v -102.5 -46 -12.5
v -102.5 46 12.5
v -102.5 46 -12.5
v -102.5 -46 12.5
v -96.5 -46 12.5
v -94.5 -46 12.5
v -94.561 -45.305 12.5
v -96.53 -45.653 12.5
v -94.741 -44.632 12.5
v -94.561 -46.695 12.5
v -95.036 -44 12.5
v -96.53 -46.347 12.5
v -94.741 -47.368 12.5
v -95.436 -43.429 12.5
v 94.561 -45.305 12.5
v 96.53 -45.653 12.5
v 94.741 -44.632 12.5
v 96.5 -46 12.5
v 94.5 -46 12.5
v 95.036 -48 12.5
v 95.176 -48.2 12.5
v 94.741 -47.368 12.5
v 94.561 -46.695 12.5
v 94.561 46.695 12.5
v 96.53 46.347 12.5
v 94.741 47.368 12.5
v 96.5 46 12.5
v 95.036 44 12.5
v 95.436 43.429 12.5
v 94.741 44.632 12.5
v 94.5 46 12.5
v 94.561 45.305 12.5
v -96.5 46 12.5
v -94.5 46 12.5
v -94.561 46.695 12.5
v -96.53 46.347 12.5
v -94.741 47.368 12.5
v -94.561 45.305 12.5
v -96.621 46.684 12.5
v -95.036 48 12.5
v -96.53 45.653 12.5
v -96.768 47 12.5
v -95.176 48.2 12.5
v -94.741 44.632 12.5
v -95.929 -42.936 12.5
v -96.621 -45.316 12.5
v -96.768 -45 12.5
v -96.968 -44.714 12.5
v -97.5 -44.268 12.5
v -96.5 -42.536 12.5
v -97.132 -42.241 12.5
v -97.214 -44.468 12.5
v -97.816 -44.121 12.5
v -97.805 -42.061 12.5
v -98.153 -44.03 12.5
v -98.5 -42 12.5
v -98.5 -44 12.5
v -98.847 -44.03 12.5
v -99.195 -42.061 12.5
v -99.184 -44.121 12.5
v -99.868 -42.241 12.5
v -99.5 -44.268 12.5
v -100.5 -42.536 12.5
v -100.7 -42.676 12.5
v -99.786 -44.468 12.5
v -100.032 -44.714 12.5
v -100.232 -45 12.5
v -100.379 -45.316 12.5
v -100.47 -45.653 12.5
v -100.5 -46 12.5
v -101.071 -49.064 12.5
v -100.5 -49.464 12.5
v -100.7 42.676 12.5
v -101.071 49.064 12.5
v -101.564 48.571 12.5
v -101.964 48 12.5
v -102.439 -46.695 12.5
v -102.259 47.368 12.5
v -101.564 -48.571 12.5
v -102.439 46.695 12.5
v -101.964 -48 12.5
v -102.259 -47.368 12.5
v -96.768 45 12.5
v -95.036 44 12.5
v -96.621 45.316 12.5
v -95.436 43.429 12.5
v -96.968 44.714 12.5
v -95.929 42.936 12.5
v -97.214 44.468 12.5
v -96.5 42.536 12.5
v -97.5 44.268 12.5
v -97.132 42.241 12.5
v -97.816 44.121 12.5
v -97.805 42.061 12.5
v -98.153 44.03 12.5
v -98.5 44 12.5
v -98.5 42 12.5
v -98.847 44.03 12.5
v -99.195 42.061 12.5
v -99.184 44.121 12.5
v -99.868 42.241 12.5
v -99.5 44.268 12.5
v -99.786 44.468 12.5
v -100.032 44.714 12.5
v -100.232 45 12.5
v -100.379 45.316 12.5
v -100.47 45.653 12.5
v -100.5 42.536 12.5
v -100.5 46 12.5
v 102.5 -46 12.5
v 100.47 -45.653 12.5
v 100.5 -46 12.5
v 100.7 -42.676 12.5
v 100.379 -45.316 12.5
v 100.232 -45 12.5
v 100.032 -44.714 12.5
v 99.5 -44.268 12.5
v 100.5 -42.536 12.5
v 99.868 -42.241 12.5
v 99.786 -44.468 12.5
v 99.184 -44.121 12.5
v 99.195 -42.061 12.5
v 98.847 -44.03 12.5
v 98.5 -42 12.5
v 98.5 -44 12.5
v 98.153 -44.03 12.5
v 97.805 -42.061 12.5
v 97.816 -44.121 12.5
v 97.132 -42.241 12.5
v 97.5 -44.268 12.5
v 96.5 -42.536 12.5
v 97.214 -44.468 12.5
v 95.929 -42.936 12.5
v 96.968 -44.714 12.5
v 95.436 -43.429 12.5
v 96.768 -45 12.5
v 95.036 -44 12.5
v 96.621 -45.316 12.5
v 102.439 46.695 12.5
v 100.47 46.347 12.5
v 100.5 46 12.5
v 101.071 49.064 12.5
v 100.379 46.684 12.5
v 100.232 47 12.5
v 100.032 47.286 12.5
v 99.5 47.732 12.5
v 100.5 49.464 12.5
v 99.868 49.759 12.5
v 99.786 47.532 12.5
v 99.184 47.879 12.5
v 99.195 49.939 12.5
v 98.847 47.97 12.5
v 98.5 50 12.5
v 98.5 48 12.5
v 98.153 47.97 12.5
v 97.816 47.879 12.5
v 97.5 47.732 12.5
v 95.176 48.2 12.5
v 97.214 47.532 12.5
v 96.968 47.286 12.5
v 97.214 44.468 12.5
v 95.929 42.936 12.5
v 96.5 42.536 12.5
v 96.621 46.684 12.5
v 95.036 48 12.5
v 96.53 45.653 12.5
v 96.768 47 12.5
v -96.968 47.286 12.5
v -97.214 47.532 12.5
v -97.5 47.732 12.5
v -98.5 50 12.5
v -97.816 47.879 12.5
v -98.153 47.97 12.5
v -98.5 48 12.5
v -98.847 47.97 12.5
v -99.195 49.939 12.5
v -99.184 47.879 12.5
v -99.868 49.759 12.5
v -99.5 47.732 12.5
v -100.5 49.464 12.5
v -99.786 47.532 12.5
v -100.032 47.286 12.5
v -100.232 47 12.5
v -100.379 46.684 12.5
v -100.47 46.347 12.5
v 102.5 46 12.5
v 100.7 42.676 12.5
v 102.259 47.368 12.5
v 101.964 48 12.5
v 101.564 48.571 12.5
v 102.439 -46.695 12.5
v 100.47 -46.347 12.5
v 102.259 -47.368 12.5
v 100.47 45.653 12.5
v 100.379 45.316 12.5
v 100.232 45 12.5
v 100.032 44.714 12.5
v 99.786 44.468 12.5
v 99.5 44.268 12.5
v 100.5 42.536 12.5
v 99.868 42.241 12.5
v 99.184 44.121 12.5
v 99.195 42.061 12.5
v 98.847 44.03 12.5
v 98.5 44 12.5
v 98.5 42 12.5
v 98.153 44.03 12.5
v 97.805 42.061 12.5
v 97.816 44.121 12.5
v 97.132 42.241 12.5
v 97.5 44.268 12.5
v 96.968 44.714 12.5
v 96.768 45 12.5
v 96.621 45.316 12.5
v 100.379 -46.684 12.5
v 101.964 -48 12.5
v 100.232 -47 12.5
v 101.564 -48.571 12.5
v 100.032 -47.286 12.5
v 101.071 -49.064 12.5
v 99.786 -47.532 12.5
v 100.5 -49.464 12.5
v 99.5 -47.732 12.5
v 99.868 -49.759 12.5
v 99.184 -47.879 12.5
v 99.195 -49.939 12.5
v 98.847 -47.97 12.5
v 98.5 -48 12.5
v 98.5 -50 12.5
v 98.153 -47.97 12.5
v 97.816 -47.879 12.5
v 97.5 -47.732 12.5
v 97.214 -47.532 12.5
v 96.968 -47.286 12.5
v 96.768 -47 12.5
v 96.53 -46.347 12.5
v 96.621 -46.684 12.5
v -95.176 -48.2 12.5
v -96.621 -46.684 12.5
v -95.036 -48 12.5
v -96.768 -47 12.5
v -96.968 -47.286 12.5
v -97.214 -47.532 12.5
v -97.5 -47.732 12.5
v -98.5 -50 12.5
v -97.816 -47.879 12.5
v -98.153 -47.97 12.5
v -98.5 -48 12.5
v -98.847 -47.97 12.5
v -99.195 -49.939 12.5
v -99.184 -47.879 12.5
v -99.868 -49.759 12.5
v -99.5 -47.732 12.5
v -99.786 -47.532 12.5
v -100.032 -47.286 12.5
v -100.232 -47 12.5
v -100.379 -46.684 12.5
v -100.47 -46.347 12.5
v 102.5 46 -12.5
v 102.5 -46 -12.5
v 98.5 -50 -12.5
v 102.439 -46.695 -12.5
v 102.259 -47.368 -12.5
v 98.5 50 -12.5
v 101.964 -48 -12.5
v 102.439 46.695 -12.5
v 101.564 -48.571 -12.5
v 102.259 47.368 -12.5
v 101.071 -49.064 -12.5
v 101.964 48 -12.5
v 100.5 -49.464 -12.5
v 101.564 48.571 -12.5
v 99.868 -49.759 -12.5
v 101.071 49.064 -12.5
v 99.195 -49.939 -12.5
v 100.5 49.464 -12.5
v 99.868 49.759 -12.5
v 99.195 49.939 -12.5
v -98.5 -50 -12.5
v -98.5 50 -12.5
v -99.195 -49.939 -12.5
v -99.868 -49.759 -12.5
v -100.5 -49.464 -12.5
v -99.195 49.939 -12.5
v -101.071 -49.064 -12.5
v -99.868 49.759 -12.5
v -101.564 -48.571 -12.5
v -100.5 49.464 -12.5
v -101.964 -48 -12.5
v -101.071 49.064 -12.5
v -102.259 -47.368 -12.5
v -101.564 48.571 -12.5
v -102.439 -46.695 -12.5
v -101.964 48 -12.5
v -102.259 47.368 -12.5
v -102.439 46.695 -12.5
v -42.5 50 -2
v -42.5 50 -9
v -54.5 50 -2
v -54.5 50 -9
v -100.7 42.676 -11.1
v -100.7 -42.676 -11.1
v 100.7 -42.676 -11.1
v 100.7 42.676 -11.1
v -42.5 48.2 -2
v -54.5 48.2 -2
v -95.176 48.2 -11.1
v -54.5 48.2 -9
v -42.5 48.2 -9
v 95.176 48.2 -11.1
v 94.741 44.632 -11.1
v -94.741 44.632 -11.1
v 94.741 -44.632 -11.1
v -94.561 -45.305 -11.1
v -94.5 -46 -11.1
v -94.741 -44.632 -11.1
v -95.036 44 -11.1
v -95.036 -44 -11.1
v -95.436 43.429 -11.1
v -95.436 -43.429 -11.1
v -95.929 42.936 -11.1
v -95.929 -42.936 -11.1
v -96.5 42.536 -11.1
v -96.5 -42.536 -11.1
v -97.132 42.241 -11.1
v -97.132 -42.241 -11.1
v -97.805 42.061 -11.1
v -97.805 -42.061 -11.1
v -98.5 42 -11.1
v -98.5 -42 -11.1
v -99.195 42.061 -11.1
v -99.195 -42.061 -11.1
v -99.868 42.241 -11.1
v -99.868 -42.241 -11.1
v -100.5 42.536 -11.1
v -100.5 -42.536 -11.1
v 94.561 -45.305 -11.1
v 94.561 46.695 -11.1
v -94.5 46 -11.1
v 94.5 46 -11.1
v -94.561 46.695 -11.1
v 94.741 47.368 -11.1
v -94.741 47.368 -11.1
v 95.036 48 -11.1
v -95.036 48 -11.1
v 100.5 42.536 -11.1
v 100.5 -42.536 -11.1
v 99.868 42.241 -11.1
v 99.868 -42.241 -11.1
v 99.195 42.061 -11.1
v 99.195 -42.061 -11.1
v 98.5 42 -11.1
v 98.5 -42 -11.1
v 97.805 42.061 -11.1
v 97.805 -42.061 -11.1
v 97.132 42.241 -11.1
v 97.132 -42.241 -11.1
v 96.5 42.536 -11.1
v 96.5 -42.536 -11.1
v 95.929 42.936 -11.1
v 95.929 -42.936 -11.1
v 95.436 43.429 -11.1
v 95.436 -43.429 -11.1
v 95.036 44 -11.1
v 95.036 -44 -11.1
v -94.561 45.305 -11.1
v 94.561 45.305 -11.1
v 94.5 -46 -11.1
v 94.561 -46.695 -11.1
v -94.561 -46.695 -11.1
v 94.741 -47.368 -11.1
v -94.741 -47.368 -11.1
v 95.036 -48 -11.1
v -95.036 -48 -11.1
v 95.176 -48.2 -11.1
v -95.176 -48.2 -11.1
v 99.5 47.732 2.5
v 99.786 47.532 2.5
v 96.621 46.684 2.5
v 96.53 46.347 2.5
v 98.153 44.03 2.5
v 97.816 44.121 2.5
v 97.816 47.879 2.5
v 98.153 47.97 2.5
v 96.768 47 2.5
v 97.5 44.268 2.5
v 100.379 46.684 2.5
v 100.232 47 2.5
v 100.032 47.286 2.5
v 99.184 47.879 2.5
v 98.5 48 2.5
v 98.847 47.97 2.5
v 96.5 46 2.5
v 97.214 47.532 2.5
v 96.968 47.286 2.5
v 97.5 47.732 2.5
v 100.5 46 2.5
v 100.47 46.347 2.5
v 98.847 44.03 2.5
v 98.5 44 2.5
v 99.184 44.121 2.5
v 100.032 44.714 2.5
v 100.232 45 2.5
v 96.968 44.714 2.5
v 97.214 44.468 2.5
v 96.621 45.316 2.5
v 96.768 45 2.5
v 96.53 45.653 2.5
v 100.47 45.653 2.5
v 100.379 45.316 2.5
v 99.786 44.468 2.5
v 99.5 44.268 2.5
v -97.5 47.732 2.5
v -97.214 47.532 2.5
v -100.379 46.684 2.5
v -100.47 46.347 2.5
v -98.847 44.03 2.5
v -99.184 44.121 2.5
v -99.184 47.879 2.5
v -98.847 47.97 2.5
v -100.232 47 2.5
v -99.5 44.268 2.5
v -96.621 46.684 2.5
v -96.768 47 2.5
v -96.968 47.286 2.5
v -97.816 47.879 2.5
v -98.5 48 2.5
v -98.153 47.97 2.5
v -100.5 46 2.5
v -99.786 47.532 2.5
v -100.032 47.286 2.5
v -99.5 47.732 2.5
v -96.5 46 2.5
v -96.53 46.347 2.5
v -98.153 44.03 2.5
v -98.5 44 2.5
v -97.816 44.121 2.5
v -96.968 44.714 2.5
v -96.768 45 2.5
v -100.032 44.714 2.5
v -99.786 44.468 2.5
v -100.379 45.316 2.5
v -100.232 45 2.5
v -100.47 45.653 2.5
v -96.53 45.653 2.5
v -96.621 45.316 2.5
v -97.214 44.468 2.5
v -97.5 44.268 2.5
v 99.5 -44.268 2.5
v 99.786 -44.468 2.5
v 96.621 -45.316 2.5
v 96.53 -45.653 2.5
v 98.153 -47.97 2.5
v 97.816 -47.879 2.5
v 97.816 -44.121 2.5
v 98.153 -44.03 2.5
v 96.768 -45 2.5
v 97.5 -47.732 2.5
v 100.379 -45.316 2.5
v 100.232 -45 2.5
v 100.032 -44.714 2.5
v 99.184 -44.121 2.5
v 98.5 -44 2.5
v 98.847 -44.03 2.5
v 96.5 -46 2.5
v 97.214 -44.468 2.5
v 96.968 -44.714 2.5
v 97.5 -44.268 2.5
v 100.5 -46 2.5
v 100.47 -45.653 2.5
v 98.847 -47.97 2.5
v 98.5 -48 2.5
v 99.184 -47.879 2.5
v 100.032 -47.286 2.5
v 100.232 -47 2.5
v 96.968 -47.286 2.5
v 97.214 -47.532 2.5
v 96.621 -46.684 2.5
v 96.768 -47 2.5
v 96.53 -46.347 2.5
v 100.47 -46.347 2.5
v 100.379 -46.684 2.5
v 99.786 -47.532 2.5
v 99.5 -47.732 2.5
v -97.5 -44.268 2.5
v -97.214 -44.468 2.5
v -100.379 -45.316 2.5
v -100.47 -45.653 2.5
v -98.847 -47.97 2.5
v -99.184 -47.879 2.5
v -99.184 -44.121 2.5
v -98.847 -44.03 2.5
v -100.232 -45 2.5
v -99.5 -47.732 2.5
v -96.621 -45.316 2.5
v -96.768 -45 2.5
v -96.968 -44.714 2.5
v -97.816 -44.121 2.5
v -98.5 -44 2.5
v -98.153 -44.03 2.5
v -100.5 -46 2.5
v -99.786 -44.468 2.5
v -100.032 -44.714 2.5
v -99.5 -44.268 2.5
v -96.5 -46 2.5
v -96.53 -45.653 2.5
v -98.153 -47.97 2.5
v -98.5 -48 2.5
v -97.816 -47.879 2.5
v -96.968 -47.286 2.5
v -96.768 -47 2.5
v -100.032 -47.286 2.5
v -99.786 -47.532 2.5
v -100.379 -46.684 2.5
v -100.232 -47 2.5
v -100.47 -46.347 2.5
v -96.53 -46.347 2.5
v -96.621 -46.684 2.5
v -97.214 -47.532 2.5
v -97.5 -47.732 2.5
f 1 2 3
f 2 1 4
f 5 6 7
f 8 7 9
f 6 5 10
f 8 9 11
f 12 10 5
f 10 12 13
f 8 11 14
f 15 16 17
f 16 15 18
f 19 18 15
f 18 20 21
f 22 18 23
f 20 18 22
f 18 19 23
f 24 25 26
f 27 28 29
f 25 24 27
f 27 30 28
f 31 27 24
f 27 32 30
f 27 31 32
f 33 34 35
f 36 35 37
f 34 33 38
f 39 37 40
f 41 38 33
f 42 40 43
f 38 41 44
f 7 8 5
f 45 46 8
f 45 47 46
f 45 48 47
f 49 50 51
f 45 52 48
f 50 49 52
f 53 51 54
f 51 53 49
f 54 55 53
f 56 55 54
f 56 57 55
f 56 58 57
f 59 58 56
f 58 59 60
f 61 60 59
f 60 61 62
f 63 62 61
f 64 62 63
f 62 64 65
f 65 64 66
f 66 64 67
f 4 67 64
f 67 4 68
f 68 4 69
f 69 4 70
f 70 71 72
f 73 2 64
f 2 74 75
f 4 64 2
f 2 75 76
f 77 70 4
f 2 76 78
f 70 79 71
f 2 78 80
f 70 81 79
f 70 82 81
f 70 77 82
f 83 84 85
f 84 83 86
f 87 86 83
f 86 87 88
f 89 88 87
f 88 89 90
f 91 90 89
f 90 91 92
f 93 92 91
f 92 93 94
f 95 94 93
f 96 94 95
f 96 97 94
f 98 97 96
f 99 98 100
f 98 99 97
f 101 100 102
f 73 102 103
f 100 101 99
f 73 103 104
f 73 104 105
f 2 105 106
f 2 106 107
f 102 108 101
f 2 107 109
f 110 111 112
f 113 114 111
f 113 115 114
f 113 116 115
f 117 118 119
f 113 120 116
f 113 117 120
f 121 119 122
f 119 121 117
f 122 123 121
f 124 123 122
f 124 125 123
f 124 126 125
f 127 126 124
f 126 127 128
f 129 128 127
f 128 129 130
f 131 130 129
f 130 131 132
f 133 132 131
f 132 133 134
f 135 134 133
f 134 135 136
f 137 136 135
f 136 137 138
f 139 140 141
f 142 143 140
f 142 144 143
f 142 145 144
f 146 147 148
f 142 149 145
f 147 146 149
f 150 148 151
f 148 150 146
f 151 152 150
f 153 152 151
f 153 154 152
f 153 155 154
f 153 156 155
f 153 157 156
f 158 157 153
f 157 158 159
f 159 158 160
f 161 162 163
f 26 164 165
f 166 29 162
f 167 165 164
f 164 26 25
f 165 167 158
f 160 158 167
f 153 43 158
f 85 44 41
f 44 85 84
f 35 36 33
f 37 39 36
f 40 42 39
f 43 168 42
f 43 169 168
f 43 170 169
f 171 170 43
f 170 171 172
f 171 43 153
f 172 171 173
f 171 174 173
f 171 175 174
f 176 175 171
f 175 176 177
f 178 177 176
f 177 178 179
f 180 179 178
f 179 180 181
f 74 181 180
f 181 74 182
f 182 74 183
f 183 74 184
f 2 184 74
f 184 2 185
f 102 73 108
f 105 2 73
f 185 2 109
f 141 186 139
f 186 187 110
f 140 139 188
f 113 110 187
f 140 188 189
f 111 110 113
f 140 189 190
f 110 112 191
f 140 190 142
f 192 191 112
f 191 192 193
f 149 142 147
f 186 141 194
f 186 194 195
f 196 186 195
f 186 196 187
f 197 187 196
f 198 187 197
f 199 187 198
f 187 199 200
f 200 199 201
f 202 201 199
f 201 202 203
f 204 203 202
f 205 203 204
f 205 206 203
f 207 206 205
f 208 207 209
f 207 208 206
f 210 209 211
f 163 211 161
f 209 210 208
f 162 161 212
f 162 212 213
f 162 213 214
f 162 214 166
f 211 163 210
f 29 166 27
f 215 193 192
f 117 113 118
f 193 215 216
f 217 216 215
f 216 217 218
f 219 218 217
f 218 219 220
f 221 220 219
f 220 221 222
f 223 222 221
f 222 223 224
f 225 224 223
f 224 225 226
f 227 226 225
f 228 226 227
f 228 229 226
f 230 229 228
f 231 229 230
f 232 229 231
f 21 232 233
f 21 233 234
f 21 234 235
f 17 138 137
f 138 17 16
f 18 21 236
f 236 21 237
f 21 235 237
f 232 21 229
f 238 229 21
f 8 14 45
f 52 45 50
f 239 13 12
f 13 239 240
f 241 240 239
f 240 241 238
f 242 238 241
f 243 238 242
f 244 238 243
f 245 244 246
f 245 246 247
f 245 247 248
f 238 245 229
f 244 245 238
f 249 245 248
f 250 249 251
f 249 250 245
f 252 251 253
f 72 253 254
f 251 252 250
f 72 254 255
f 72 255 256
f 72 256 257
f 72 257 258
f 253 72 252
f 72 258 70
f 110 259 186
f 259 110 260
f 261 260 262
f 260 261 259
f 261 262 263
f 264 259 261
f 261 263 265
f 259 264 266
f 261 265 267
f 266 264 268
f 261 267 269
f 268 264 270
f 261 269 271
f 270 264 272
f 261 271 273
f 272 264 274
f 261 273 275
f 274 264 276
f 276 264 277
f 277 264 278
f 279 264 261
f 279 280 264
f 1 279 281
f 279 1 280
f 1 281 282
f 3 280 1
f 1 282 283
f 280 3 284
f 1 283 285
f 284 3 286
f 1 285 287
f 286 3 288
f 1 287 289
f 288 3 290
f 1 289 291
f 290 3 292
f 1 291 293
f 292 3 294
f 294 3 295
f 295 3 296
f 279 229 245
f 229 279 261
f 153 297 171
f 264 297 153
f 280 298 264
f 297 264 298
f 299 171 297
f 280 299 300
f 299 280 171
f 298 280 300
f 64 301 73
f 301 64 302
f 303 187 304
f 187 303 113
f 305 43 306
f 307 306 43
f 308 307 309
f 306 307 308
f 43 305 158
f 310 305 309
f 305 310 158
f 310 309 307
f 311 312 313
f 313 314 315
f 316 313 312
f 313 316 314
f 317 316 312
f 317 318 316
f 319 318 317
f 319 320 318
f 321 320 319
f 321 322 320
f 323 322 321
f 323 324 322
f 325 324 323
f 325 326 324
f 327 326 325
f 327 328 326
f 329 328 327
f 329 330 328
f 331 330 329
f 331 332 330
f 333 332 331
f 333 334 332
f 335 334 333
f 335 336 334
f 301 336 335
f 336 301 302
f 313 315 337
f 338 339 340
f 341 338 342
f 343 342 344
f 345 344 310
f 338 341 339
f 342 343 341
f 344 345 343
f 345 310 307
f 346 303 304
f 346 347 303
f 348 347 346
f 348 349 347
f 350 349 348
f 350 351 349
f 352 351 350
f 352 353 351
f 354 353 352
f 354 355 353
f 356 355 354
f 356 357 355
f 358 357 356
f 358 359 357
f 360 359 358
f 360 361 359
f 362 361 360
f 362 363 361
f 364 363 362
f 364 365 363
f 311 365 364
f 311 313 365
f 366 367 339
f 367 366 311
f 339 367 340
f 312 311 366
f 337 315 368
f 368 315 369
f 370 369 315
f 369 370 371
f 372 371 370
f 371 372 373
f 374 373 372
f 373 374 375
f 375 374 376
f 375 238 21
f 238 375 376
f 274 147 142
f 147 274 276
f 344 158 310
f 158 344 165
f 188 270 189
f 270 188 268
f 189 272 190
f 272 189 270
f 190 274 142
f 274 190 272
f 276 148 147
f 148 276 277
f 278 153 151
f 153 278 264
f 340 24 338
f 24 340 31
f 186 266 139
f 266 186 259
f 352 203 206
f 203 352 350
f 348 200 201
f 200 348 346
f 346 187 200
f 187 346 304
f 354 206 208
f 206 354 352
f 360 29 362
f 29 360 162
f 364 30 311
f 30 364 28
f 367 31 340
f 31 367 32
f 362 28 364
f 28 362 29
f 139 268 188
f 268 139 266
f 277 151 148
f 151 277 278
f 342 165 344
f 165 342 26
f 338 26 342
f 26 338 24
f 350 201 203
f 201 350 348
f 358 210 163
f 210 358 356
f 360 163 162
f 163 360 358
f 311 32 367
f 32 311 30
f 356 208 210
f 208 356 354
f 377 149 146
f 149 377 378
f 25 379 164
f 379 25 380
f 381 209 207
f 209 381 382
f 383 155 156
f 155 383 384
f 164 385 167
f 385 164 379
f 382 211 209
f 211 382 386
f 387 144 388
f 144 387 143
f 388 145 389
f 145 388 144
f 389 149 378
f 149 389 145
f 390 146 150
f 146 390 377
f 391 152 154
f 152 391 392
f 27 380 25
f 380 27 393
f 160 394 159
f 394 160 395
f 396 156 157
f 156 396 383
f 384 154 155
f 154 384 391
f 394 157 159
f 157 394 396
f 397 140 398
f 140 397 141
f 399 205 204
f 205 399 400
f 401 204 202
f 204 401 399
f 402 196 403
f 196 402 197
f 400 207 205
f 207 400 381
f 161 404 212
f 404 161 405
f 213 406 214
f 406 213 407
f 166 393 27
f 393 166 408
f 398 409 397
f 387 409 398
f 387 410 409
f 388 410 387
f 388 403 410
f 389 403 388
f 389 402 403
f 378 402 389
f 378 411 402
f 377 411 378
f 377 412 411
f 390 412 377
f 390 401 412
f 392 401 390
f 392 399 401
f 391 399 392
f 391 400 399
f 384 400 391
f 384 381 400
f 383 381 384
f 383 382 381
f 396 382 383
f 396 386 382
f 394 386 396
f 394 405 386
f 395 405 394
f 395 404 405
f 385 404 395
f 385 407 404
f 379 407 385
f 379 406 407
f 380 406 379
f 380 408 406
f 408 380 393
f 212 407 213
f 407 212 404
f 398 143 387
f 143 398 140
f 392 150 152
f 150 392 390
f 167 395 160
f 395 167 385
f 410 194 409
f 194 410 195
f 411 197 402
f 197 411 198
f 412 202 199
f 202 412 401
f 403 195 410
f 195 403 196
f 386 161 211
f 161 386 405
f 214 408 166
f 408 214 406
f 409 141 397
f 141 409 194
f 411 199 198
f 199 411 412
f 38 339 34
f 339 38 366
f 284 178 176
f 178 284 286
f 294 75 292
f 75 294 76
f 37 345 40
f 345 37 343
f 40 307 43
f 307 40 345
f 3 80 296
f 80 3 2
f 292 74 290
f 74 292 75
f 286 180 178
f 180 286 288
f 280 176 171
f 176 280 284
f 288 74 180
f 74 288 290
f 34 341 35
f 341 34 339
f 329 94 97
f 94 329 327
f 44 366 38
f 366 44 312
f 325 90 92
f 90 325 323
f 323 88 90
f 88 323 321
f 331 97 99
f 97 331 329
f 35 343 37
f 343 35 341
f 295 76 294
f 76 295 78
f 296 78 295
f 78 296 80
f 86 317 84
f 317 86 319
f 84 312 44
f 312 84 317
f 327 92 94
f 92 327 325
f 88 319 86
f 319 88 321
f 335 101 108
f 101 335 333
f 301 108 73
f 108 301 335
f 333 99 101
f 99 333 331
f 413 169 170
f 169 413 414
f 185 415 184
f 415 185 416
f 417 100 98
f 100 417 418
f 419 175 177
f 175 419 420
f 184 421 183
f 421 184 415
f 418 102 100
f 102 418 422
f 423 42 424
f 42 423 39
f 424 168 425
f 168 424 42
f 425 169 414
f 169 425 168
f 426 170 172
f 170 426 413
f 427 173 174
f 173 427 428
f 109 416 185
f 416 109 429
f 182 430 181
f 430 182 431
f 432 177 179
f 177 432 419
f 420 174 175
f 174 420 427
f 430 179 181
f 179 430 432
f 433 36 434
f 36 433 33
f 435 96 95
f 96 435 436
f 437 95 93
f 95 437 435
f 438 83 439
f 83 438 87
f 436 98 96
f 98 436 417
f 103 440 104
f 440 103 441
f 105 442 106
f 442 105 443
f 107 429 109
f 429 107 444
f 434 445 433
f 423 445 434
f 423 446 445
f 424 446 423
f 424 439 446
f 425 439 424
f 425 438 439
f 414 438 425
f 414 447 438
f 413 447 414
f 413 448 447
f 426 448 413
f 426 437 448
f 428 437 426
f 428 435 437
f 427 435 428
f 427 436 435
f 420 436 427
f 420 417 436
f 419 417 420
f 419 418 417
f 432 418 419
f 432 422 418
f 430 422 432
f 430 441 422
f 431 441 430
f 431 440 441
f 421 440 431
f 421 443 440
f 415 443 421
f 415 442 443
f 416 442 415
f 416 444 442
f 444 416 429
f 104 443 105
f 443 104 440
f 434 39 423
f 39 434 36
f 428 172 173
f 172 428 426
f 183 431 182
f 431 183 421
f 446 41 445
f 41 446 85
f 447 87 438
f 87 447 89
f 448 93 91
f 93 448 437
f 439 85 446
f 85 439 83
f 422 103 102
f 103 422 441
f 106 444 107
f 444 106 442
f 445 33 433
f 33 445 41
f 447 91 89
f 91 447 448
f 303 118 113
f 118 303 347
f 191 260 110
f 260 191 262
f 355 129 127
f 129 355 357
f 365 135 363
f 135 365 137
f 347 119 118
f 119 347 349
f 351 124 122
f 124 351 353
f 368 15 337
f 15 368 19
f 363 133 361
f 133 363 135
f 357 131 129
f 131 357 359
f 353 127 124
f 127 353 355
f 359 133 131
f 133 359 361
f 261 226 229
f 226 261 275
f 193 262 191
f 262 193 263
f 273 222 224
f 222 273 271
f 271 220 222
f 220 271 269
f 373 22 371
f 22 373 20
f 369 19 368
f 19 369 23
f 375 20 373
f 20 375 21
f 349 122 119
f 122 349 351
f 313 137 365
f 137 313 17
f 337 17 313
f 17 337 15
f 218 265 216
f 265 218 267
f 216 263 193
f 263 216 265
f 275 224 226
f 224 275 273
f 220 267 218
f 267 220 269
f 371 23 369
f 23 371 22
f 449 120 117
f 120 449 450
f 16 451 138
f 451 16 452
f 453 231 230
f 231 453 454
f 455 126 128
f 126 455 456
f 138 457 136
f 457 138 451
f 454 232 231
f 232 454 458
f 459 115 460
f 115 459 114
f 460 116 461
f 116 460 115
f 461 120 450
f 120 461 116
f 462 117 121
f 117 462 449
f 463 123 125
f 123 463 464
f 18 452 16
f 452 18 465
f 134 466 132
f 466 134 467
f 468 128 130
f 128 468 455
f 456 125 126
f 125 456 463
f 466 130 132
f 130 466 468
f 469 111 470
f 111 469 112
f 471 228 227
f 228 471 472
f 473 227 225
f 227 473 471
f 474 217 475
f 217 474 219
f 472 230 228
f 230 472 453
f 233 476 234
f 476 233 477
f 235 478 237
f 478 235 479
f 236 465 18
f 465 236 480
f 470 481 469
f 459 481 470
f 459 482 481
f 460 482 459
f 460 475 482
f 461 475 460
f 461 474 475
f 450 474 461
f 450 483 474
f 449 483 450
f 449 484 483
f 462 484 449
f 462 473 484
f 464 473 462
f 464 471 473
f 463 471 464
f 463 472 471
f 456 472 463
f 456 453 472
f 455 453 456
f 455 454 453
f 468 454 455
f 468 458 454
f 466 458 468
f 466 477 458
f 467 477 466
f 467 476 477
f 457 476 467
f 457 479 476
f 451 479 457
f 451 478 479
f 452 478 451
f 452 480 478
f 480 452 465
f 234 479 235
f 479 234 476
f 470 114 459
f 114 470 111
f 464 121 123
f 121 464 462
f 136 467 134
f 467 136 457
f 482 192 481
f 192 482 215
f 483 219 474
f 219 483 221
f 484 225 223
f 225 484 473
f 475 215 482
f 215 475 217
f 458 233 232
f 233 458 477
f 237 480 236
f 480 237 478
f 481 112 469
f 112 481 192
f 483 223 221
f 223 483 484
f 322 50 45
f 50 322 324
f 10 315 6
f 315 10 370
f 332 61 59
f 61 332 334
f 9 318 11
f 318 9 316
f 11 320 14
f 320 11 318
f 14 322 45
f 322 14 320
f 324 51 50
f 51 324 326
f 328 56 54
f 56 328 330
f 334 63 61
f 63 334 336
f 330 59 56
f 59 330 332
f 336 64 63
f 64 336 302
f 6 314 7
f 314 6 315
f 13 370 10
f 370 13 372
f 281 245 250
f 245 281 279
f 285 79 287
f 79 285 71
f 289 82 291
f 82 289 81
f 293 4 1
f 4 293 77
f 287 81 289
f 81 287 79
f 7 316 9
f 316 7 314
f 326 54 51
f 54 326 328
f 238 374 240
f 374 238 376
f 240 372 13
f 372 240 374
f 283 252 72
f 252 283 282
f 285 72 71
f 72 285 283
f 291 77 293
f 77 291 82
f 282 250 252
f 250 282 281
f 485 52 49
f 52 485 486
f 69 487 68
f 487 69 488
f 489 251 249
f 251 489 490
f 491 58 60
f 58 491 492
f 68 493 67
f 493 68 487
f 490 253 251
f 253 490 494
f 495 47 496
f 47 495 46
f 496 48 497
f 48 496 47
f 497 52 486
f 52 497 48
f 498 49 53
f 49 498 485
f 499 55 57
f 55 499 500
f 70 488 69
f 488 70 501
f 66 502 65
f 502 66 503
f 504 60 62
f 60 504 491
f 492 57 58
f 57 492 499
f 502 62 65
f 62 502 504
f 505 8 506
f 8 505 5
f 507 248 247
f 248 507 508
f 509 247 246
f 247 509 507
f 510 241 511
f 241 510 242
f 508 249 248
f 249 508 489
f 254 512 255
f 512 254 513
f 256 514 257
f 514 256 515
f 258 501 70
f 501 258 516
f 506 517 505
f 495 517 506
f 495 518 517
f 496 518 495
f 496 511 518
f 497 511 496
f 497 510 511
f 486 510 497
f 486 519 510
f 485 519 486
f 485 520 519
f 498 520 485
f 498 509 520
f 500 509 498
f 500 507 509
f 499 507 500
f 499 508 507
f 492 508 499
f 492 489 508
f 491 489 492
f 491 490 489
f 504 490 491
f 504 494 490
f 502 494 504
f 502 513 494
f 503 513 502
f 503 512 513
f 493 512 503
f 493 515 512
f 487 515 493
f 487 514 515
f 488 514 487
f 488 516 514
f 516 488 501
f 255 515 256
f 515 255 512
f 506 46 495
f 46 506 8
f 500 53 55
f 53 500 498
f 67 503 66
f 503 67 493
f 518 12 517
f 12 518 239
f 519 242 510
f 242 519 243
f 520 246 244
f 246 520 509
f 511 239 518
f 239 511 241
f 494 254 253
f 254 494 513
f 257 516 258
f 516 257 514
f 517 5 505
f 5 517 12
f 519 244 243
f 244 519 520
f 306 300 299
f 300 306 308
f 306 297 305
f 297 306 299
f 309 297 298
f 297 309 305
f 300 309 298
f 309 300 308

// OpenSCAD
// Definition size of housing
// **************************

       // Those settings have to be identical to the cover !!!
width_x      = 205;          // Width of the housing (outer dimension) 
debth_y      = 100;           // Debth of the housing (outer dimension)
wall         = 1.8;          // Wall thickness of the box
cornerradius = 4.0;          // Radius of the corners
                             //   This value also defines the posts for stability and
                             //   for the press-in nuts!

       // Those settings are more or less independent from the cover
height_z     = 25;           // Heigth of the lower part. Total height is this value plus
                             //   the height of the cover
plate        = 1.4;          // Thickness of the bottom plain

       //Definition size of press-in nuts
nutdiameter  = 4.0;          // Hole diameter for thermal press-in nut
nutlength    = 10;          // Depth of the nut hole


//Definition of circle angular resolution
resol        = 36;



difference () {

// Construction of housing
   union () {
   // Definition of main body
      difference () {
         union () {
            cube ( [width_x, debth_y - (2* cornerradius), height_z], center = true );
            cube ( [width_x - (2* cornerradius), debth_y, height_z], center = true );
         };
         translate ( [0,0, plate / 2] ){
            cube ( [width_x - (2* wall), debth_y- (2* wall), height_z - plate], center = true ); 
         };
      };

      // Construction of four corner cylinders including nut holes
      // 1st quadrant
      translate ( [(width_x / 2) - cornerradius, (debth_y / 2) - cornerradius, 0 ] ) {
         difference () {
            cylinder (h=height_z, r=cornerradius, center = true, $fn = resol);
            translate ( [ 0,0,(height_z / 2)-(nutlength / 2) ] ) {
               cylinder (h = nutlength, r = nutdiameter / 2, center = true, $fn = resol);
            };
         };
      };

      // 2nd quadrant
      translate ( [-(width_x / 2) + cornerradius, (debth_y / 2) - cornerradius, 0] ) {
         difference () {
            cylinder (h=height_z, r=cornerradius, center = true, $fn = resol);
            translate ( [ 0,0,(height_z / 2)-(nutlength / 2) ] ) {
               cylinder (h = nutlength, r = nutdiameter / 2, center = true, $fn = resol);
            };
         };
      };

      // 4th quadrant
      translate ( [(width_x / 2) - cornerradius, -(debth_y / 2) + cornerradius, 0] ) {
         difference () {
            cylinder (h=height_z, r=cornerradius, center = true, $fn = resol);
            translate ( [ 0,0,(height_z / 2)-(nutlength / 2) ] ) {
               cylinder (h = nutlength, r = nutdiameter / 2, center = true, $fn = resol);
            };
         };
      };

      // 3rd quadrant
      translate ( [-(width_x / 2) + cornerradius, -(debth_y / 2) + cornerradius, 0] ) {
         difference () {
            cylinder (h=height_z, r=cornerradius, center = true, $fn = resol);
            translate ( [ 0,0,(height_z / 2)-(nutlength / 2) ] ) {
               cylinder (h = nutlength, r = nutdiameter / 2, center = true, $fn = resol);
            };
         };
      }; 
   };

// Space for the construction of holes, breakouts, ... 

    //hole for usb
    translate ([-width_x/2+54,debth_y/2,-5.5]) cube ([12,20,7],center=true);


};
